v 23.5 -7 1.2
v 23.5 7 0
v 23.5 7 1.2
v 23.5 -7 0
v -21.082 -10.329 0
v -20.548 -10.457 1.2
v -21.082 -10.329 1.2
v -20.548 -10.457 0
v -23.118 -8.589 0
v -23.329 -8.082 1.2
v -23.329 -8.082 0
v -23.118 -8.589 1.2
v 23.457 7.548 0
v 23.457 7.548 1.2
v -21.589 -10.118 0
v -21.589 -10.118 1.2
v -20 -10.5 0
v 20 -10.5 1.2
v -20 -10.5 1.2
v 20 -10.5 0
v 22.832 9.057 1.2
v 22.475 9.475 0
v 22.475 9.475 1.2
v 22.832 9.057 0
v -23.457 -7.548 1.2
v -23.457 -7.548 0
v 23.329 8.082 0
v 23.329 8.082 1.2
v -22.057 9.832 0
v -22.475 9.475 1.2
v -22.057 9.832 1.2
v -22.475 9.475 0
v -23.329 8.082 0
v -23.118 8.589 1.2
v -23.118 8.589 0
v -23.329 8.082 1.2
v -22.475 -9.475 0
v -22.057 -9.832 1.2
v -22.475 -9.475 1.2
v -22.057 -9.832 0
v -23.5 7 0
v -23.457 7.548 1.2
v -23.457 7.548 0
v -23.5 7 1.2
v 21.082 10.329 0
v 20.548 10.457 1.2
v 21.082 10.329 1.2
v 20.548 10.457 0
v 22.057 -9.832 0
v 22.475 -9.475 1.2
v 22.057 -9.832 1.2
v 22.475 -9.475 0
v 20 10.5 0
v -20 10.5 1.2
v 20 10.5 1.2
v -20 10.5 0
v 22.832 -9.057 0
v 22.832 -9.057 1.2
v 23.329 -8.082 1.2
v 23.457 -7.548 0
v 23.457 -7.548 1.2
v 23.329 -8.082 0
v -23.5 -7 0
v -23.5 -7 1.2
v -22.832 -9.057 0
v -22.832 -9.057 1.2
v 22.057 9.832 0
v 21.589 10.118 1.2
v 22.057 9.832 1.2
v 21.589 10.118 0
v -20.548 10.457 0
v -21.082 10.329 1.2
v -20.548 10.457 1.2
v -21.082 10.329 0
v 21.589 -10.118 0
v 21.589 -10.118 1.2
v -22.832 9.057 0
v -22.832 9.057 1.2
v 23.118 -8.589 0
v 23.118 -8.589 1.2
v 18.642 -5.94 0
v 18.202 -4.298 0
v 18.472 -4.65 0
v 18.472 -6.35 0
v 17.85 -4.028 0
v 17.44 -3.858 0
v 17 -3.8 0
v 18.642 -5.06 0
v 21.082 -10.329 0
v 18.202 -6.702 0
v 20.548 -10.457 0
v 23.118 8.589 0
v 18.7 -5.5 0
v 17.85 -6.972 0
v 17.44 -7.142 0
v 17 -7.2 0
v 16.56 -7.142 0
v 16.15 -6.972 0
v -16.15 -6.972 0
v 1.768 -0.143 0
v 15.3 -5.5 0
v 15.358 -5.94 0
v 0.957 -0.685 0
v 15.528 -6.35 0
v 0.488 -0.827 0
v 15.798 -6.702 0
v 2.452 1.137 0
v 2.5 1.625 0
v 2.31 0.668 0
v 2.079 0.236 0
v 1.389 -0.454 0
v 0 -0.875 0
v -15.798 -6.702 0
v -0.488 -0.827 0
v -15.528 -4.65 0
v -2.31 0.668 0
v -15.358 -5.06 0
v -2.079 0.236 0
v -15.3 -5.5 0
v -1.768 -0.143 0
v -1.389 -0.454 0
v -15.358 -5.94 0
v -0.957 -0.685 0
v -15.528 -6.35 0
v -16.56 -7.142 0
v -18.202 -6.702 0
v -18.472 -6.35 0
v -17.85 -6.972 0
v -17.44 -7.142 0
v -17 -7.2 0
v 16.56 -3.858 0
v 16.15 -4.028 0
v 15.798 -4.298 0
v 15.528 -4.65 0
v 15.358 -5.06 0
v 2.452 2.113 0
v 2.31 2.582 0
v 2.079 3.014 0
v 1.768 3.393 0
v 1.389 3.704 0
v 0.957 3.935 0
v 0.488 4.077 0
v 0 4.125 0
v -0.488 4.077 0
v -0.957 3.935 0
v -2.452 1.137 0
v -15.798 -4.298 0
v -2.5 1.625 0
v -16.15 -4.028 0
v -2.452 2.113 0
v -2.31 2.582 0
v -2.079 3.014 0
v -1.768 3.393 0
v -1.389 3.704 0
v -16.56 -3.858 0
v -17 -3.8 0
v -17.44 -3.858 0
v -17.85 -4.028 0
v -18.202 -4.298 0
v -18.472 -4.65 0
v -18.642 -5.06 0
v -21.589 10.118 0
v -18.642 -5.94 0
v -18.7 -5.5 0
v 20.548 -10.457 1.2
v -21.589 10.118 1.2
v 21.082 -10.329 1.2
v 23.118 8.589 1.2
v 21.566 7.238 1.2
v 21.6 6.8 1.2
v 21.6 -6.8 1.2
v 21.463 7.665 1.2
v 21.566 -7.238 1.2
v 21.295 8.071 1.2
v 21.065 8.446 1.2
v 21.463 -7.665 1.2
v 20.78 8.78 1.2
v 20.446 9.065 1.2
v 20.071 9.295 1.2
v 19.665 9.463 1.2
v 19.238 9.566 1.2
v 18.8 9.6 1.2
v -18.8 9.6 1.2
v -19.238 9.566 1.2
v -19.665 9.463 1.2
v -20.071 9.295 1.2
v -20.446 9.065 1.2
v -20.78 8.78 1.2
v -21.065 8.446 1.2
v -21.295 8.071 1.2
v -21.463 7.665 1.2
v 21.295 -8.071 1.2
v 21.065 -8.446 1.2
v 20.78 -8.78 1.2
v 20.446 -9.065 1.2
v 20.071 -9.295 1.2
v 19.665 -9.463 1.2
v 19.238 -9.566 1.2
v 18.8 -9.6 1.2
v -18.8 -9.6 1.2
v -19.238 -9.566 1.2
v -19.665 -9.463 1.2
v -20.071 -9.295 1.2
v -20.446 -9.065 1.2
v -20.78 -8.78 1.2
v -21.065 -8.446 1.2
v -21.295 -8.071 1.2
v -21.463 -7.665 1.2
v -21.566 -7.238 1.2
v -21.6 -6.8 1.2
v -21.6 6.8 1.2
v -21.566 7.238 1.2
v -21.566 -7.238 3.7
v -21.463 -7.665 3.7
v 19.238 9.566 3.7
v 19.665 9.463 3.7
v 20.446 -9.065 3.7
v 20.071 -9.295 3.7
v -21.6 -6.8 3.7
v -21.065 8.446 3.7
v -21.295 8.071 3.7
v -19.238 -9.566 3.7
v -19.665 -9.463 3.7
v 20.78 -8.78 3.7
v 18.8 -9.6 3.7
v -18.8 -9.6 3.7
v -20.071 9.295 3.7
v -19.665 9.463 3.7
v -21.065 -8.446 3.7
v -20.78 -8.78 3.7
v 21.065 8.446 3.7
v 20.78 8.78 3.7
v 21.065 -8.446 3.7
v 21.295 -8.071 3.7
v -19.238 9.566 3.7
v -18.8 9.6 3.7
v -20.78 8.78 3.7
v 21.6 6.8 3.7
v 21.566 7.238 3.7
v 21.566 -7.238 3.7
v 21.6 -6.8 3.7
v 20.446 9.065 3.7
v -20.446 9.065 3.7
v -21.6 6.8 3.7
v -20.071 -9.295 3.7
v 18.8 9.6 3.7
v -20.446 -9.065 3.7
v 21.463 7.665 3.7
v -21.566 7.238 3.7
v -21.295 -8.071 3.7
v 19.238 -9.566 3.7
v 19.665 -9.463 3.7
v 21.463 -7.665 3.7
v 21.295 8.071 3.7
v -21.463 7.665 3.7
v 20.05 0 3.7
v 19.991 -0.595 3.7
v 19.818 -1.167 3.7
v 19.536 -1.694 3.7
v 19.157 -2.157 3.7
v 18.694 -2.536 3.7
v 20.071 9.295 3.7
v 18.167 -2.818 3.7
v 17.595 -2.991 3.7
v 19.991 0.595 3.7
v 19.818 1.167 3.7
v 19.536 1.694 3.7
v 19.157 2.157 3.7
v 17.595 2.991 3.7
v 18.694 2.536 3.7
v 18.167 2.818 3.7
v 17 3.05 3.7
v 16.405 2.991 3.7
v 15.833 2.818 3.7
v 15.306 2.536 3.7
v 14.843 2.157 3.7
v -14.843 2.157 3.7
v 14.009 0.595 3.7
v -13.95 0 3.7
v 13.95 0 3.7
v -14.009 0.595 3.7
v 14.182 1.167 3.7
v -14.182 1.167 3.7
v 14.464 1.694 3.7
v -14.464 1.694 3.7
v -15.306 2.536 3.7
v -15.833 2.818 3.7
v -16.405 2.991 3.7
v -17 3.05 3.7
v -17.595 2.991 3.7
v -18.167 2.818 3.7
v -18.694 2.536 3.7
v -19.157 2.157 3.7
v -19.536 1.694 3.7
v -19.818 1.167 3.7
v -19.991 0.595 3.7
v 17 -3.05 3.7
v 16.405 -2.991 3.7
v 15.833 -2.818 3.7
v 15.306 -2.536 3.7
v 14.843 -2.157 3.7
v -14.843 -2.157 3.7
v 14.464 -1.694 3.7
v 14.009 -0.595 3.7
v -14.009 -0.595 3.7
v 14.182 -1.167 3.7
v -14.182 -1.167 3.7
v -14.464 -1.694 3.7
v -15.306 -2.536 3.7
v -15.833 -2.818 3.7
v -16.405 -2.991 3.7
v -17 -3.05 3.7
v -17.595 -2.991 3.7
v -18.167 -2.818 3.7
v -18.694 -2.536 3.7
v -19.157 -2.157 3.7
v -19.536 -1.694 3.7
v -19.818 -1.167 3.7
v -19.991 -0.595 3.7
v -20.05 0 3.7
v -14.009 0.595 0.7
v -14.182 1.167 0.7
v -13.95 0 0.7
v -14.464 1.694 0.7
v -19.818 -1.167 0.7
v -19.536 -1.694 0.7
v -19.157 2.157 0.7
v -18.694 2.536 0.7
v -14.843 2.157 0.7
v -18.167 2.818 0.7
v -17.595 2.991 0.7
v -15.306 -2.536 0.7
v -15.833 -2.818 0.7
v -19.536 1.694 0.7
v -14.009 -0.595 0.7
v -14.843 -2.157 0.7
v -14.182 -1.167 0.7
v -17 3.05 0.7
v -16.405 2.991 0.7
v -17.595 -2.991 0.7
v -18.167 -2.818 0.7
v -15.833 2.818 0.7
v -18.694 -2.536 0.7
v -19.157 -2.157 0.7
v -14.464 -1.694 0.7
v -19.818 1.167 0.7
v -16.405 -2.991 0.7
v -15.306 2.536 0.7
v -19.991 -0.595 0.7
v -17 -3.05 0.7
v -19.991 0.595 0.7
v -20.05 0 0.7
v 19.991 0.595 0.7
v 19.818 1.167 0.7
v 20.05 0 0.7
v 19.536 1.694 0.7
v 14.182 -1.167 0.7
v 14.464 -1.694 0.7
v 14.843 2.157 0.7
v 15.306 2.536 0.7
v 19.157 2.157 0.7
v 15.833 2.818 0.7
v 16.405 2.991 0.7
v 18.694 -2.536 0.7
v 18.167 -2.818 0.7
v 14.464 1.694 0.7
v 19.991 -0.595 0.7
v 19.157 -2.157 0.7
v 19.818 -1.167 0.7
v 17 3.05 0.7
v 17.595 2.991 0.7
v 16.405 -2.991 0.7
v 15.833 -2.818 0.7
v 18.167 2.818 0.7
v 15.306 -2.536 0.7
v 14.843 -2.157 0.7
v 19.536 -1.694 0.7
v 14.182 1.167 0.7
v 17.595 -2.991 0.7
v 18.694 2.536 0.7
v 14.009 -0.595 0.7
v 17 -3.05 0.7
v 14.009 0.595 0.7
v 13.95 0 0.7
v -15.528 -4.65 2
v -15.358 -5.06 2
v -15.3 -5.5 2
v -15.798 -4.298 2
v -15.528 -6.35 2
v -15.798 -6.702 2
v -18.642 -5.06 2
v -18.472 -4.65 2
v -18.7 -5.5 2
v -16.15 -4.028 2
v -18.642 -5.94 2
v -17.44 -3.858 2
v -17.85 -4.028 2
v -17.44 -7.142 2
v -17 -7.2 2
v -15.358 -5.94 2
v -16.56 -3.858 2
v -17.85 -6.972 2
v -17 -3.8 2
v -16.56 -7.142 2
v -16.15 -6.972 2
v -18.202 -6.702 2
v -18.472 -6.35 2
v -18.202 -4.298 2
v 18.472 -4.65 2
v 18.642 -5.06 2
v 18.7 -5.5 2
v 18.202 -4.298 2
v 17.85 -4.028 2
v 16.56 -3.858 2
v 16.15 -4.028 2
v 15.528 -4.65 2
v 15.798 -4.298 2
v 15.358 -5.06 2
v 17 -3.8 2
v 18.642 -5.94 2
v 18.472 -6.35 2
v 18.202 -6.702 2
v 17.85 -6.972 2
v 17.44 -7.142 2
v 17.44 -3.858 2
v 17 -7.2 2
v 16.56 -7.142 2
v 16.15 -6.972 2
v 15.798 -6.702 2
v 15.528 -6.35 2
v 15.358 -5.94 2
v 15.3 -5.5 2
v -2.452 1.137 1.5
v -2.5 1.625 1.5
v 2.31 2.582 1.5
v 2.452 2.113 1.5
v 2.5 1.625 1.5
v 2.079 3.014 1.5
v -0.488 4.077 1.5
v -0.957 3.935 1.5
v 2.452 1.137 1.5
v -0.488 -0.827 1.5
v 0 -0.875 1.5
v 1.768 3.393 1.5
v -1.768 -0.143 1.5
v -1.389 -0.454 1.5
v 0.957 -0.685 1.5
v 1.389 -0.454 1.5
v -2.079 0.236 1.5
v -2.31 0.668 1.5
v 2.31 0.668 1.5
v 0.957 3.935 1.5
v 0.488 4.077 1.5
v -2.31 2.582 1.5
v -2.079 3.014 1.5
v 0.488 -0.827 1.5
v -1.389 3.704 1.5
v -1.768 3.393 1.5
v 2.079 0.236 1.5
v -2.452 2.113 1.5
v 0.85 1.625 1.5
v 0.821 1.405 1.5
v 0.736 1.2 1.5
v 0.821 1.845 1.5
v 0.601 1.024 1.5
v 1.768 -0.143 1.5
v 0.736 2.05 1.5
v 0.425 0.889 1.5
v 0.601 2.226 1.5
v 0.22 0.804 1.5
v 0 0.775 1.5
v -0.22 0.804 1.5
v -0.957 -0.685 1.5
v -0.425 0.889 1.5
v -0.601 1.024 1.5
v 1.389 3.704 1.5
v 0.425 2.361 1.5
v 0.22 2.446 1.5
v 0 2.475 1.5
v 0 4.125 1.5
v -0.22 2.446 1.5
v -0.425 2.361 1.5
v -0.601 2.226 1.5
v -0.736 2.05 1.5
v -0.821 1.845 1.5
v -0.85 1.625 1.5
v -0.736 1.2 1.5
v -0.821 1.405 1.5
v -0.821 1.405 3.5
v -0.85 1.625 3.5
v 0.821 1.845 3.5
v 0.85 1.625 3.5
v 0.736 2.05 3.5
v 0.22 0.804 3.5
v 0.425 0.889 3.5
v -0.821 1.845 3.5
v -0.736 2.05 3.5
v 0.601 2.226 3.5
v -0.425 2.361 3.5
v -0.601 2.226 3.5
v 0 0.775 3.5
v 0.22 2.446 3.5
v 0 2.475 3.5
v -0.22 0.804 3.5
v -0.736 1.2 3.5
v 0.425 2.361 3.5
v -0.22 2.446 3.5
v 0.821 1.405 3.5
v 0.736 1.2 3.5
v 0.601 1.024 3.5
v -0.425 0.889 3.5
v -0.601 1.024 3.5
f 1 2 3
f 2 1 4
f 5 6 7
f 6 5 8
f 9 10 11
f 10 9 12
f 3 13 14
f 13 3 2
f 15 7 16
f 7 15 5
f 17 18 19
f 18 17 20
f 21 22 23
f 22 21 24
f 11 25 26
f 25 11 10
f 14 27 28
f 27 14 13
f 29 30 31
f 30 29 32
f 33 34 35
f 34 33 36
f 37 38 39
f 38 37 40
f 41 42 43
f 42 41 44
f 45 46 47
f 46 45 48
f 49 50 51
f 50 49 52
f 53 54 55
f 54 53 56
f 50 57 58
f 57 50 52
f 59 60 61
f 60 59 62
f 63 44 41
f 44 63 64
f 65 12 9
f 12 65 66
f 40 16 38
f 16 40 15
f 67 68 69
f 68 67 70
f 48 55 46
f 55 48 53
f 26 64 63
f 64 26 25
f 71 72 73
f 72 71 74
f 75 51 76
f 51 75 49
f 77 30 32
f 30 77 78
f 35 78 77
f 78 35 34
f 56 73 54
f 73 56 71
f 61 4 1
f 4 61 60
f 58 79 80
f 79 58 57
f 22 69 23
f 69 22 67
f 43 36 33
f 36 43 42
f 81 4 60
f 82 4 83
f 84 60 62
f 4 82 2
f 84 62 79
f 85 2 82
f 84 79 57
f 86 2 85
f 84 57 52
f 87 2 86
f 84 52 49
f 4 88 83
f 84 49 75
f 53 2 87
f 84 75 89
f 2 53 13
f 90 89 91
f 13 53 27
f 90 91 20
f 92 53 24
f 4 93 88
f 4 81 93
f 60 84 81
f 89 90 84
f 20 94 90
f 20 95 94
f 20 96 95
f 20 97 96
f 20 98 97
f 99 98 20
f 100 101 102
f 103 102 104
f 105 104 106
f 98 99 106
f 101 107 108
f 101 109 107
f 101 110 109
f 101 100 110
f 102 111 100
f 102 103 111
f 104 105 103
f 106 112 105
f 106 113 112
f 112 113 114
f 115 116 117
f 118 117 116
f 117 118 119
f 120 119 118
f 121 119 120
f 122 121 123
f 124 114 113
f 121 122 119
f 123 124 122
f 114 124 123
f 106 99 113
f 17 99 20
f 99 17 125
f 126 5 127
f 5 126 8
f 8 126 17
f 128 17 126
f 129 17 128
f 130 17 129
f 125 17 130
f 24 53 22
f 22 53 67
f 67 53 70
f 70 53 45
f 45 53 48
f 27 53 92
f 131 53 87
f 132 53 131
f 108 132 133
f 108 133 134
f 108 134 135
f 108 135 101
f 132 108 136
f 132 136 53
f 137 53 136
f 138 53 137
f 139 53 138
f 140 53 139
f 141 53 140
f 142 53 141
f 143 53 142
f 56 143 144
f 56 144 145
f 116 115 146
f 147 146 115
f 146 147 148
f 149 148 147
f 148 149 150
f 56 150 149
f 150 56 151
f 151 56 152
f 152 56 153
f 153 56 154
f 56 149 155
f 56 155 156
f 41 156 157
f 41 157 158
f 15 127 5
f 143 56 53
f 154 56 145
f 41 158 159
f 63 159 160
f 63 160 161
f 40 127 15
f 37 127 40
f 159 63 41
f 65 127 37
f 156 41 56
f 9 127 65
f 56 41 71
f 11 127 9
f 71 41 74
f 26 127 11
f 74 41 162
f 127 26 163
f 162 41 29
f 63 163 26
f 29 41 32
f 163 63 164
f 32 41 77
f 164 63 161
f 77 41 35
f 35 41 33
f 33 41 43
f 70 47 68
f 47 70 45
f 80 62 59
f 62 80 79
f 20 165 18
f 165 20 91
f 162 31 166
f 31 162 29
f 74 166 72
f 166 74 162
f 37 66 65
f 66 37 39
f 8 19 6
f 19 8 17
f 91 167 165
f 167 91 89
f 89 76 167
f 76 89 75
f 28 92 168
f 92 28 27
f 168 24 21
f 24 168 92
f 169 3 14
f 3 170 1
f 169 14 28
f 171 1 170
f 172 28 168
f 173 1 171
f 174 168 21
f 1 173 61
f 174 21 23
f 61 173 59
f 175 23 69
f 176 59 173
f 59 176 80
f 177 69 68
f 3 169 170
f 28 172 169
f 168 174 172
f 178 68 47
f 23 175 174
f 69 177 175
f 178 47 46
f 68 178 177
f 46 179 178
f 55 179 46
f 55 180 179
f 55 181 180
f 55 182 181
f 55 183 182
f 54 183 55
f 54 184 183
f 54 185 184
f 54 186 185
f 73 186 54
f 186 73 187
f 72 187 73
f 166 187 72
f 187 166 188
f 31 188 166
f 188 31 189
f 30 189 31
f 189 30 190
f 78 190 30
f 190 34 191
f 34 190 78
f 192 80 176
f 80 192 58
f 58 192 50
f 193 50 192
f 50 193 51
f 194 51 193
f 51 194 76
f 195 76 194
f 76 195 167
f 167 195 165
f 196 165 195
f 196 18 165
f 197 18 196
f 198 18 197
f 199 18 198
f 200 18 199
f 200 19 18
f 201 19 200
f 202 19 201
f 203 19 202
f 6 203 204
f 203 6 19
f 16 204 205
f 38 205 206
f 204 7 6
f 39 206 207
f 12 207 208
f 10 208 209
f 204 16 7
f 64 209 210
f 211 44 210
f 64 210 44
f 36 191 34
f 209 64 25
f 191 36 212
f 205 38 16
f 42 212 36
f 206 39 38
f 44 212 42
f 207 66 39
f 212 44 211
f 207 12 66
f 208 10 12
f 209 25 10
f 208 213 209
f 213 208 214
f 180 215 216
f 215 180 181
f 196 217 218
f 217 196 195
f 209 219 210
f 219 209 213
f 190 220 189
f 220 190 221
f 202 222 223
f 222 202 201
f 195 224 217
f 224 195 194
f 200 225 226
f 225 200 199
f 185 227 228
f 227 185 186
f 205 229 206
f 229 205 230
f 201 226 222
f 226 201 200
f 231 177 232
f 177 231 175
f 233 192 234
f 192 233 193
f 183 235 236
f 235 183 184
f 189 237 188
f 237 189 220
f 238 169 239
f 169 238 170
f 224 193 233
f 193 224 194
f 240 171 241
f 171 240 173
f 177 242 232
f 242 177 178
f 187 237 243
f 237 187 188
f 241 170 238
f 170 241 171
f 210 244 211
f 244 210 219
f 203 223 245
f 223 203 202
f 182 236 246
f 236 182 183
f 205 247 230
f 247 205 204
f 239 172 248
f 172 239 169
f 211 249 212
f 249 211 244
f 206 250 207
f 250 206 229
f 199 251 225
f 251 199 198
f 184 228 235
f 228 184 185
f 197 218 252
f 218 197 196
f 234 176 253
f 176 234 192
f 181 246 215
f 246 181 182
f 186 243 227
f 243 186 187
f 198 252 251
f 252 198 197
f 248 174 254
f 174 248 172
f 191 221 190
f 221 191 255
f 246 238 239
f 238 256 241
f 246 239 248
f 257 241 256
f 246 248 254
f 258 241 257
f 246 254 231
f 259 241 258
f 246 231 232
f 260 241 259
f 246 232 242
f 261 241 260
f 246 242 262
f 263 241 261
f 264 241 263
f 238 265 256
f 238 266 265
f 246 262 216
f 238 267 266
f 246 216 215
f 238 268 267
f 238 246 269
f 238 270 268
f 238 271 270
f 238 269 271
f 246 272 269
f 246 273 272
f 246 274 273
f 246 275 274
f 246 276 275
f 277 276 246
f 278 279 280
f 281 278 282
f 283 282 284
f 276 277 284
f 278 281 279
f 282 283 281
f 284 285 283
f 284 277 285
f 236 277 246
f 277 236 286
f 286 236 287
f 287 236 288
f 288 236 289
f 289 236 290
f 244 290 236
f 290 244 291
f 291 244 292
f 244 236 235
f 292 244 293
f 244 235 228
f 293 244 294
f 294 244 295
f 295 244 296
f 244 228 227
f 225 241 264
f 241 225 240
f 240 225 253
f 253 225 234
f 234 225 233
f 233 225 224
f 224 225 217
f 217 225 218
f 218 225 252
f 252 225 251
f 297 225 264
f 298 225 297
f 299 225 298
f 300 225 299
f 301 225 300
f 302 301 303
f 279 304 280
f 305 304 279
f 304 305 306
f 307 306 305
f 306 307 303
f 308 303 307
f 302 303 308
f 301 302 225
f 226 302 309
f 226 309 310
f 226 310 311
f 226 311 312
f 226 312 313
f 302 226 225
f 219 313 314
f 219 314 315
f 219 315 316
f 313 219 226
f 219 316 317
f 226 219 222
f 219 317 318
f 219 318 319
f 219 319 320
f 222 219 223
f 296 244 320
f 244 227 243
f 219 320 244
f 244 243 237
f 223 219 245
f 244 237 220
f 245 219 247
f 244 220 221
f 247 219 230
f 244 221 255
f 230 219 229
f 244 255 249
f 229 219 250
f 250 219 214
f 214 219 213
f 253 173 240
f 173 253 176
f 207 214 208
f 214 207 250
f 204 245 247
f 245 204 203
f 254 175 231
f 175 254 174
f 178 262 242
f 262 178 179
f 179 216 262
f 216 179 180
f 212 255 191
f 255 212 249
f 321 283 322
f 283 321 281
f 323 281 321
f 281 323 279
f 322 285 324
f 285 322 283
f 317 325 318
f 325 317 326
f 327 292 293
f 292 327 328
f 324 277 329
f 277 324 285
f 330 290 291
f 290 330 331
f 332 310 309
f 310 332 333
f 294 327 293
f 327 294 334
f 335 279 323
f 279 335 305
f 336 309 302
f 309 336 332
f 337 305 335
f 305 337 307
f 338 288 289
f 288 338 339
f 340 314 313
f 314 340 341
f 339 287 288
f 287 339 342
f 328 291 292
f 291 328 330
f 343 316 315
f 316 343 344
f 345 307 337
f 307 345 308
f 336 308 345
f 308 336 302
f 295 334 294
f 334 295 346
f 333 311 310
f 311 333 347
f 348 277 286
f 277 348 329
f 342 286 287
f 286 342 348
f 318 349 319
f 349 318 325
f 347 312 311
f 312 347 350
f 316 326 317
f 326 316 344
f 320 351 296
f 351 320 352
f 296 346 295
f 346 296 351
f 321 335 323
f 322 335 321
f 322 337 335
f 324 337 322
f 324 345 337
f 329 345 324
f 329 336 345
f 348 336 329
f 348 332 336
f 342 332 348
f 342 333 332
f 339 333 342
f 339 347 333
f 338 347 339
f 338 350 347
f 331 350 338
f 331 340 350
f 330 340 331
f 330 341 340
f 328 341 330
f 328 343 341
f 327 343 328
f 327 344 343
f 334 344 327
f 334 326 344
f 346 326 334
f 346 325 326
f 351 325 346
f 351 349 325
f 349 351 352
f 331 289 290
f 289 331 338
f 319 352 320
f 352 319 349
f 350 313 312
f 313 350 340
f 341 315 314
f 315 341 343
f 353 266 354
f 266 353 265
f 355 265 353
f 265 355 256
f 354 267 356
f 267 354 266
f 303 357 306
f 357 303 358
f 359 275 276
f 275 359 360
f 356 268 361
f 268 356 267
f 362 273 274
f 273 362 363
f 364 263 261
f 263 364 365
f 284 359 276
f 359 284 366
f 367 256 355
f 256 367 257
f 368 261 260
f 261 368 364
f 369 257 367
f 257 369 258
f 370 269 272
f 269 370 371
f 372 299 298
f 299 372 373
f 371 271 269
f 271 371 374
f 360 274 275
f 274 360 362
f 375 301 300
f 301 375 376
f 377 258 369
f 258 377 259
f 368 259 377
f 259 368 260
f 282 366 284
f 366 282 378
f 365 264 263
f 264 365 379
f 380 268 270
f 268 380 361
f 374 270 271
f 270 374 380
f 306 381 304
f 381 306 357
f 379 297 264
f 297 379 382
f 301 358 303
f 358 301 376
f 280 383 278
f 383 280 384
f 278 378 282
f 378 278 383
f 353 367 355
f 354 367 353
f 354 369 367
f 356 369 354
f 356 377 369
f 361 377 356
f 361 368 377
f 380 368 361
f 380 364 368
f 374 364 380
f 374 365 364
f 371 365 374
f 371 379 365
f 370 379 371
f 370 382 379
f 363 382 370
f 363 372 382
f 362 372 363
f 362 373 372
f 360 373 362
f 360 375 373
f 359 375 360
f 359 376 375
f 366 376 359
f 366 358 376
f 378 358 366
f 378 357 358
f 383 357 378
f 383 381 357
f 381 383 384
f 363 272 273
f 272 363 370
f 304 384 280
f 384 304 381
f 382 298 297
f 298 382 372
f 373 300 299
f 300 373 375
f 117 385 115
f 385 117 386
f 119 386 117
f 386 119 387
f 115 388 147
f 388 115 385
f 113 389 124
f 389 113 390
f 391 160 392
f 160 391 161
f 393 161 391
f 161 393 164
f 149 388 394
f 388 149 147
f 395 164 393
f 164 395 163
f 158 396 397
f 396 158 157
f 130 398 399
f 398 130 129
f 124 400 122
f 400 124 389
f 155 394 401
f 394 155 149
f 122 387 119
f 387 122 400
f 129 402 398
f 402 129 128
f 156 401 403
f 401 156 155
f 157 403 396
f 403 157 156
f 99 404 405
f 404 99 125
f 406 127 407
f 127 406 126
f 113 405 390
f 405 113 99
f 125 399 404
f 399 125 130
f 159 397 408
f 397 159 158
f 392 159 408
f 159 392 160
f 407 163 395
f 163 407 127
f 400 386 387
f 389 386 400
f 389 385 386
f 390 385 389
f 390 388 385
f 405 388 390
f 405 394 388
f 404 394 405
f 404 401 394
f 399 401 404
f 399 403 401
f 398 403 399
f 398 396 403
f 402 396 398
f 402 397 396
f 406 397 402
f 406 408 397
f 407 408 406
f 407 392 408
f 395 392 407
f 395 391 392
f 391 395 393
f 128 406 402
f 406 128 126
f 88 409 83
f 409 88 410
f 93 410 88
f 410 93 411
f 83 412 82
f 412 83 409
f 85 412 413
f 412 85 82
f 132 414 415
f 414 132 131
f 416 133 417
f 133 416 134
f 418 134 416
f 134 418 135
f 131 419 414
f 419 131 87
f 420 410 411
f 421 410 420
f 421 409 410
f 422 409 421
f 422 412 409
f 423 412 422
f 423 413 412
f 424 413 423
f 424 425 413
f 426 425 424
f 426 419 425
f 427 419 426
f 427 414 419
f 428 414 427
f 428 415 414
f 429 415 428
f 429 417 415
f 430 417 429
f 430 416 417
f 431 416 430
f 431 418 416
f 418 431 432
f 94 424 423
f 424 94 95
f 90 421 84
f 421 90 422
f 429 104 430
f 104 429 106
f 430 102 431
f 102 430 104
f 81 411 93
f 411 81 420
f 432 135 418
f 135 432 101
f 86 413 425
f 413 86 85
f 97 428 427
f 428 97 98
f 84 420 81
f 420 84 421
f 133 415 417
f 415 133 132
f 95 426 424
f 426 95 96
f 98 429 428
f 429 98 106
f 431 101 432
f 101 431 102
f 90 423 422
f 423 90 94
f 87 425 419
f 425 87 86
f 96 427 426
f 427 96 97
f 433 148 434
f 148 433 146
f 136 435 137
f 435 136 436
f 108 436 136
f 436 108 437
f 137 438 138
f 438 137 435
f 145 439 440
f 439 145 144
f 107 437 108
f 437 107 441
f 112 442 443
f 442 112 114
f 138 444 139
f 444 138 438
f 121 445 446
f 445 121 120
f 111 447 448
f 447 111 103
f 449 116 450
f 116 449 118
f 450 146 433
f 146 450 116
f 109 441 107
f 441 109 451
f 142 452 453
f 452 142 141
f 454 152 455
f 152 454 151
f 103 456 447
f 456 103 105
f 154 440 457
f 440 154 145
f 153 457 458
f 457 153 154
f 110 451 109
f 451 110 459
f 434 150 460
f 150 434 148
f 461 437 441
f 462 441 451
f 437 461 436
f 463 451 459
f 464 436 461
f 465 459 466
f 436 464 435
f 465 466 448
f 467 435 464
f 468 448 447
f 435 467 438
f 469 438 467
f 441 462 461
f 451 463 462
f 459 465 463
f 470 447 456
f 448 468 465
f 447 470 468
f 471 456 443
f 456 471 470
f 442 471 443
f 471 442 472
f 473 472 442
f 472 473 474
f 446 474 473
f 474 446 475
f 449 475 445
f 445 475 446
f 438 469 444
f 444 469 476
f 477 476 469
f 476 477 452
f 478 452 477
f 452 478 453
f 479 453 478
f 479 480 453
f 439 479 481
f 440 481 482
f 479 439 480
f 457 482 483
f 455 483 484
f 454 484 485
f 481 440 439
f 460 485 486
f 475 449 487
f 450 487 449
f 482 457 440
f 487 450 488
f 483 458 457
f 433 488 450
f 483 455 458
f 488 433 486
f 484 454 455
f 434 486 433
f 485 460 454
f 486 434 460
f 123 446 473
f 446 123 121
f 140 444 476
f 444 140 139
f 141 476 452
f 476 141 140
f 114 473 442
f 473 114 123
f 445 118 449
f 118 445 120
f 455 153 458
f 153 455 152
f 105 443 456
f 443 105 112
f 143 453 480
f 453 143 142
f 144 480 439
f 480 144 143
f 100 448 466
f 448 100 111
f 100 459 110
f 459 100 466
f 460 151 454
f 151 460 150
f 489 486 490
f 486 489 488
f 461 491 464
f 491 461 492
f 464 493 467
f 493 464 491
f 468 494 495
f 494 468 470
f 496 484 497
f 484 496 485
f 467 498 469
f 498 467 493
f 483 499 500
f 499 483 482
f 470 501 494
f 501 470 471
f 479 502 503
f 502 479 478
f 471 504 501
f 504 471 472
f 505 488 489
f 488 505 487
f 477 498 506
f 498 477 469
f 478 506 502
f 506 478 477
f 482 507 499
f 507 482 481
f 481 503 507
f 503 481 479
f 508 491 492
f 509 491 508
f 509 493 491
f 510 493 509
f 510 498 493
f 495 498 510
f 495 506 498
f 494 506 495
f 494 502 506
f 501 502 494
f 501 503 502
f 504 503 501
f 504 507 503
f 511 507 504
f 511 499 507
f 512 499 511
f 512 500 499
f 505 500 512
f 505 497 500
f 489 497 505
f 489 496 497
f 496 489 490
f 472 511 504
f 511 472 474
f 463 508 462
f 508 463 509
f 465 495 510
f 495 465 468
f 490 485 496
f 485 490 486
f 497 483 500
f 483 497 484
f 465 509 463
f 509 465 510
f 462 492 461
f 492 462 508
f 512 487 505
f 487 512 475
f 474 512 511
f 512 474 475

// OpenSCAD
// file: params.scad
// ==========================================
// ConnectedDoll2 Shell Parameters (params.scad)
// ==========================================

$fn = 40; // 円・フィレットの分割精度

// --- 基本ケース外形 ---
wall_thickness = 2.0;         // ケース肉厚
corner_radius  = 4.0;         // 外装の角丸半径
clearance      = 0.4;         // 嵌合・可動クリアランス

// --- メイン基板 (PCB) ---
pcb_width      = 60.0;
pcb_height     = 60.0;
pcb_thickness  = 1.6;
pcb_hole_pitch = 52.0;        // 取付穴ピッチ (四隅 52x52mm)
pcb_hole_dia   = 2.0;         // M2 穴

// --- スピーカー (TR-WS-2014B) ---
spk_body_w     = 20.0;        // 本体幅 (20.0mm)
spk_body_h     = 13.9;        // 本体奥行き (13.9mm)
spk_thickness  = 4.5;         // 本体厚み (4.5mm)
spk_ear_w      = 28.5;        // フランジ含む全幅 (28.5mm)
spk_ear_to_front = 1.65;      // 出音口端面から取付穴中心までの距離 (1.65mm)
spk_hole_pitch = 24.7;        // フランジ取付穴ピッチ (24.7mm)
spk_hole_dia   = 1.8;         // M1.8 穴
spk_boss_dia   = 4.2;
spk_boss_inner = 1.4;         // M1.8 タッピング穴径
spk_boss_h     = 4.0;

// --- 前面ボタン（ボトムケース手前側面に配置） ---
btn_side_width        = 44.0;       // 側面ボタン開口幅
btn_side_height       = 20.0;       // 側面ボタン開口高さ
btn_side_radius       = 3.0;        // 側面ボタン角丸

btn_cap_depth         = 2.5;        // ボタンキャップ厚み（ズレ・傾き防止ガイド長）
btn_flange_t          = 1.2;        // 脱落防止フランジ厚み
btn_flange_w          = btn_side_width + 3.0;   // 47.0mm (左右抜け止めツバ幅: 片側+1.5mm)
btn_flange_h          = btn_side_height + 1.0;  // 21.0mm (上下抜け止めツバ高: 片側+0.5mm, 天板天井クリアランス+0.5mm)
btn_magnet_d          = 6.0;        // ネオジム磁石直径 (φ6.0mm)
btn_magnet_t          = 3.0;        // ネオジム磁石厚み (3.0mm)
btn_magnet_pitch_w    = 34.0;       // 左右磁石・ナット位置ピッチ (2個配置)
btn_magnet_pocket_d   = 6.1;        // ボタン側磁石埋め込みポケット径 (φ6.1mm)
btn_magnet_pocket_depth = 3.0;      // ボタン側磁石埋め込みポケット深さ (3.0mm)

// --- 前面化粧パネル（アクリル等）および M2 六角ナット仕様 ---
panel_nut_width       = 4.4;        // パネル側 M2 六角ナット二面幅 (対辺 4.0mm + 余裕0.4mm)
panel_nut_depth       = 1.6;        // パネル側 M2 六角ナット厚み / ポケット深さ (1.6mm)

// --- 前面ボタン 左右押しバネ（マイクロコイルスプリング）＆M2アジャスタブル・プランジャー ---
btn_spring_d            = 3.0;        // 押しバネ外径 (φ3.0mm)
btn_spring_pocket_d     = 3.4;        // バネ収容ポケット穴径 (φ3.4mm: 余裕+0.4mm)
btn_spring_pocket_depth = 2.0;        // ボタン側バネポケット深さ (2.0mm)
btn_spring_pitch_w      = 34.0;       // 左右押しバネ配置ピッチ (34.0mm: 左右均等対称)
btn_spring_offset_y     = -5.5;       // 押しバネYオフセット (磁石ポケットとの干渉回避: 下側 -5.5mm)
btn_spring_free_l       = 7.0;        // 押しバネ自由長目安 (6.0〜8.0mm)
btn_case_boss_pocket_d  = 2.5;        // ボトムケース側受けボス深さ (2.5mm)
btn_case_boss_outer_d   = 5.4;        // ボトムケース側受けボス外径 (φ5.4mm)
btn_case_boss_y         = 9.5;        // ボトムケース側受けボス中心Y座標 (9.5mm)
btn_target_stroke       = 0.4;        // スイッチ作動ストローク目安 (約0.3〜0.5mm)
btn_m2_boss_outer_d     = 4.4;        // M2ネジ受けボス外径 (肉厚強化 φ4.4mm)
btn_m2_boss_inner_d     = 1.7;        // M2ネジ下穴径 (PLAタッピング用 φ1.7mm)
btn_m2_boss_h           = 0.0;        // インセット構造により裏面突出ボスは0mm (完全フラット)
btn_inset_pocket_d      = 5.0;        // M2ネジ頭インセット収容ポケット径 (φ5.0mm)
btn_inset_pocket_depth  = 1.5;        // M2ネジ頭インセット収容ポケット深さ (1.5mm)
btn_m2_tap_depth        = 2.0;        // ポケット底面からのタッピング下穴深さ (2.0mm)
btn_plunger_screw_l     = 4.0;        // 推奨M2なべ小ねじ長さ (L=4〜6mm)

// --- 前面アクリル化粧パネル埋め込み用リセス（段差ポケット） ---
front_recess_depth    = btn_magnet_t; // 3.0mm (アクリル厚みに完全一致)
front_recess_margin   = 0.6;          // リセスクリアランス (周囲0.6mm)
front_recess_w        = btn_side_width + front_recess_margin * 2;   // 45.2mm
front_recess_h        = btn_side_height + front_recess_margin * 2;  // 21.2mm
front_recess_r        = btn_side_radius + front_recess_margin;      // 3.6mm

// --- ボリューム調整スリット（右側面に配置）および RK10J ダイヤル仕様 ---
vol_dial_d         = 14.0;       // ダイヤル外径 (φ14.0mm)
vol_dial_h         = 2.5;        // ダイヤル本体高さ (2.5mm)
vol_slit_width     = 16.0;       // ダイヤル操作スリット幅
vol_slit_radius    = 1.5;        // スリット下部角丸
vol_offset_y       = -5.0;       // Y軸方向オフセット（前方向へ5mm移動）
vol_slit_bottom_z  = 23.5;       // スリット下端高さ (基板表面23.8mmより0.3mm下: 内部露出を防ぎつつダイヤル全高を露出)
vol_slit_height    = 4.5;        // スリット高さ (天面28.0mmまで開放するUノッチ形状: 28.0 - 23.5 = 4.5mm)

// --- 電池ボックス (単4×3本 スイッチ付き) ---
batt_length        = 63.0;        // 横幅
batt_width         = 37.0;        // 縦幅
batt_height        = 17.0;        // 厚み
batt_clearance     = 0.6;         // 電池ボックス収容クリアランス
batt_pos_y         = 3.5;         // 電池ボックス中心Yオフセット（奥側M2支柱および手前スピーカーとの干渉回避位置）
batt_rib_t         = 1.6;         // ガイドリブ基本肉厚（剛性向上: 1.2 -> 1.6mm）
batt_rib_h         = 8.0;         // ガイドリブ高さ
batt_gusset_t      = 1.5;         // 補強三角リブ厚み
batt_gusset_rear_d = 4.0;         // 奥側三角リブ奥行き
batt_gusset_front_d= 3.0;         // 手前側三角リブ奥行き
batt_gusset_h      = 6.5;         // 三角リブ高さ
spk_pos_y          = -28.5;       // スピーカー固定ボス中心Yオフセット（出音口を手前-Y方向に向ける）

// --- ケース寸法計算 ---
case_front_extend = 3.0;         // ケース手前側壁の前方拡張量 (+3.0mm: 基板とのクリアランス確保)
case_inner_w   = pcb_width + clearance * 2 + 4.0; // 内部幅 (約 64.8mm)
case_inner_h   = pcb_height + clearance * 2 + 4.0 + case_front_extend; // 内部奥行き (64.8 + 3.0 = 67.8mm)

top_cover_h    = 8.0;         // トップカバー高さ（薄型フタ・天板）
bottom_case_h  = 28.0;        // ボトムケース高さ（20mmスペーサー + 基板 + スイッチ開口を収容、28mm）

case_outer_w   = case_inner_w + wall_thickness * 2; // 外幅 (約 68.8mm)
case_outer_h   = case_inner_h + wall_thickness * 2; // 外高 (約 71.8mm)

// 基板および内部固定部品の基準中心座標 (背面クリアランス2.4mmを維持し、前方を+3mm拡大)
center_x       = case_outer_w / 2; // 34.4mm
center_y       = (pcb_width + clearance * 2 + 4.0) / 2 + wall_thickness + case_front_extend; // 37.4mm

// --- M2 六角オスメスネジスペーサー仕様 ---
spacer_body_h      = 20.0;           // スペーサー本体（六角部）長さ = 20.0mm
spacer_male_h      = 6.0;            // 先端おねじ部長さ = 6.0mm
spacer_hex_w       = 4.4;            // ボトム側回り止め六角ポケット二面幅 (対辺 4.0mm + 余裕0.4mm)
spacer_pocket_d    = 1.0;            // 回り止め六角ポケット深さ
spacer_pad_h       = 1.2;            // ボトム底面のスペーサー受け座パッド高さ
pcb_standoff_h     = spacer_body_h;  // 基板受け面高さ = 20.0mm
pcb_seat_z         = wall_thickness + (spacer_pad_h - spacer_pocket_d) + pcb_standoff_h; // 基板底面高さ = 22.2mm
pcb_top_z          = pcb_seat_z + pcb_thickness; // 基板表面高さ = 23.8mm

// ダイヤル中心座標 (RK10J)
vol_dial_center_x  = pcb_width / 2 - 4.5; // ダイヤル中心X座標 (外周φ14mmが基板端から2.5mm突出)
vol_dial_center_z  = pcb_top_z + vol_dial_h / 2; // ダイヤル中心高さ = 25.05mm

// ボタンおよびアクリルパネルの統一中心高さ (Z = 23.0mm: 天面および底面とのクリアランス調和)
btn_center_z       = wall_thickness + pcb_standoff_h + 1.0;

// タクトスイッチ (EVQPUC02K: 全高1.65mm) 中心高さおよびボタン中心からのプランジャーオフセット
tact_switch_center_z = pcb_top_z + 1.65 / 2; // Z = 24.625mm (基板20mmスペーサー上の実高さ)
btn_plunger_offset_y = tact_switch_center_z - btn_center_z; // +1.625mm (スイッチ中心に完全一致)

// --- 統合締結ボス・ネジ穴寸法 ---
joint_pitch        = pcb_hole_pitch; // 52.0mm
joint_boss_outer   = 6.0;            // トップ側ボス外径
joint_screw_pass   = 2.2;            // M2 ネジ通過穴径（ボトム底面）
joint_screw_tap    = 1.8;            // M2 おねじ受けタッピング穴径（トップ側）
joint_screw_head_d = 4.4;            // M2 ネジ頭沈め径
joint_screw_head_h = 1.8;            // ネジ頭沈め深さ
rib_thickness      = 1.2;            // 補強リブ厚み

// --- 共通ユーティリティモジュール ---
module rounded_cube(size, r) {
    x = size[0];
    y = size[1];
    z = size[2];
    hull() {
        translate([r, r, 0]) cylinder(h=z, r=r);
        translate([x - r, r, 0]) cylinder(h=z, r=r);
        translate([x - r, y - r, 0]) cylinder(h=z, r=r);
        translate([r, y - r, 0]) cylinder(h=z, r=r);
    }
}
// main file
// ==========================================
// ConnectedDoll2 Front Button (front_button.scad)
// ==========================================

include <params.scad>;

// ボタン詳細パラメータ
btn_cap_w      = btn_side_width - clearance * 2;   // 43.2mm
btn_cap_h      = btn_side_height - clearance * 2;  // 19.2mm
btn_cap_r      = btn_side_radius - clearance / 2;  // 角丸 R=2.8mm

// 抜け止めツバ（フランジ）は params.scad で定義 (btn_flange_w=47.0mm, btn_flange_h=21.0mm)

module button_face(w, h, d, r) {
    hull() {
        translate([-w/2 + r, -h/2 + r, 0]) cylinder(h=d, r=r);
        translate([w/2 - r, -h/2 + r, 0])  cylinder(h=d, r=r);
        translate([w/2 - r, h/2 - r, 0])   cylinder(h=d, r=r);
        translate([-w/2 + r, h/2 - r, 0])  cylinder(h=d, r=r);
    }
}

// 表面の ネオジム磁石埋め込みポケット (深さ 3.0mm, 直径 6.1mm)
module magnet_pocket() {
    translate([0, 0, btn_flange_t + btn_cap_depth - btn_magnet_pocket_depth])
        cylinder(h=btn_magnet_pocket_depth + 0.1, d=btn_magnet_pocket_d, $fn=32);
}

// 左右のマイクロコイルスプリング収容ポケット (φ3.4mm, 深さ 2.0mm)
module spring_pocket() {
    translate([0, 0, -0.1])
        cylinder(h=btn_spring_pocket_depth + 0.1, d=btn_spring_pocket_d, $fn=24);
}

// M2ネジ頭インセット収容ポケット (深さ 1.5mm, φ5.0mm)
// ネジ頭（φ3.5mm x 1.3mm）をボタン内部に沈め込み、突出量を無段階微調整する
module m2_inset_pocket() {
    py = btn_plunger_offset_y;
    translate([0, py, -0.1])
        cylinder(h=btn_inset_pocket_depth + 0.1, d=btn_inset_pocket_d, $fn=32);
}

// M2タッピング用下穴（φ1.7mm, ポケット底面から前方へ深さ 2.0mm）
module m2_plunger_hole() {
    py = btn_plunger_offset_y;
    d_in = btn_m2_boss_inner_d;
    translate([0, py, btn_inset_pocket_depth - 0.1])
        cylinder(h=btn_m2_tap_depth + 0.1, d=d_in, $fn=24);
}

module front_button() {
    difference() {
        union() {
            // 1. 脱落防止フランジ（最底面: 厚み 1.2mm）
            translate([0, 0, 0])
                button_face(btn_flange_w, btn_flange_h, btn_flange_t, btn_side_radius + 0.5);

            // 2. ボタンキャップ（ズレ・傾き防止ガイド部: 厚み 2.5mm）
            translate([0, 0, btn_flange_t])
                button_face(btn_cap_w, btn_cap_h, btn_cap_depth, btn_cap_r);
        }

        // 3. 操作面 左右2箇所の ネオジム磁石埋め込みポケット（高さ中央 Y=0）
        for (dx = [-btn_magnet_pitch_w / 2, btn_magnet_pitch_w / 2]) {
            translate([dx, 0, 0])
                magnet_pocket();
        }

        // 4. 左右2箇所の マイクロコイルスプリング収容ポケット（裏面 Y=btn_spring_offset_y）
        for (dx = [-btn_spring_pitch_w / 2, btn_spring_pitch_w / 2]) {
            translate([dx, btn_spring_offset_y, 0])
                spring_pocket();
        }

        // 5. M2ネジ頭インセット収容ポケット（沈め込み深さ 1.5mm）
        m2_inset_pocket();

        // 6. M2アジャスタブル・プランジャー タッピング下穴
        m2_plunger_hole();
    }
}

// 描画
front_button();
